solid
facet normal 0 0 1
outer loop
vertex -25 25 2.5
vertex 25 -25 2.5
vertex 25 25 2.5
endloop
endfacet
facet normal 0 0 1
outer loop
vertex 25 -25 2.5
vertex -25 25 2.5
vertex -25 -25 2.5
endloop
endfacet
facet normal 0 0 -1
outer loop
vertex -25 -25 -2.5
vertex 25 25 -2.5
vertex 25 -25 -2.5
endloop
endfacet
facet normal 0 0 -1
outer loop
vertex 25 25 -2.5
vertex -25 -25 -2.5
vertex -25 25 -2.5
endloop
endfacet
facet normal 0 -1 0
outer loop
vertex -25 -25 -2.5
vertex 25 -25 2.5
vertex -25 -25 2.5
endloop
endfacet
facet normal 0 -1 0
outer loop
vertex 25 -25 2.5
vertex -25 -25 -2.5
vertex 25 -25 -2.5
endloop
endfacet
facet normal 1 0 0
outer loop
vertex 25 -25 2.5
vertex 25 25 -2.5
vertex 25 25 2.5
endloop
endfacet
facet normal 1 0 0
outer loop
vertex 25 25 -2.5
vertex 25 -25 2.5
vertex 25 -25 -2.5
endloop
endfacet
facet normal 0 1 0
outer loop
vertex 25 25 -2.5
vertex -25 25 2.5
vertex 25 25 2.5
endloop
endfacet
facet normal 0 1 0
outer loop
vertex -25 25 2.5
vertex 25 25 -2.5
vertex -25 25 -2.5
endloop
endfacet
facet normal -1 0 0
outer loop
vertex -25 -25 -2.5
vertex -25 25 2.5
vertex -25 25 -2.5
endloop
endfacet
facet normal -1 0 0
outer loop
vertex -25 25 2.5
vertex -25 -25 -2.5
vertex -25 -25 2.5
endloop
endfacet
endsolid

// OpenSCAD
// Spacer Plate
module spacer_plate() {
    // Dimensions based on the description and visual estimation
    square_size = 50; // Length of the square side
    thickness = 5;    // Thickness of the plate

    // Create a square plate
    cube([square_size, square_size, thickness], center = true);
}

// Render the spacer plate
spacer_plate();
